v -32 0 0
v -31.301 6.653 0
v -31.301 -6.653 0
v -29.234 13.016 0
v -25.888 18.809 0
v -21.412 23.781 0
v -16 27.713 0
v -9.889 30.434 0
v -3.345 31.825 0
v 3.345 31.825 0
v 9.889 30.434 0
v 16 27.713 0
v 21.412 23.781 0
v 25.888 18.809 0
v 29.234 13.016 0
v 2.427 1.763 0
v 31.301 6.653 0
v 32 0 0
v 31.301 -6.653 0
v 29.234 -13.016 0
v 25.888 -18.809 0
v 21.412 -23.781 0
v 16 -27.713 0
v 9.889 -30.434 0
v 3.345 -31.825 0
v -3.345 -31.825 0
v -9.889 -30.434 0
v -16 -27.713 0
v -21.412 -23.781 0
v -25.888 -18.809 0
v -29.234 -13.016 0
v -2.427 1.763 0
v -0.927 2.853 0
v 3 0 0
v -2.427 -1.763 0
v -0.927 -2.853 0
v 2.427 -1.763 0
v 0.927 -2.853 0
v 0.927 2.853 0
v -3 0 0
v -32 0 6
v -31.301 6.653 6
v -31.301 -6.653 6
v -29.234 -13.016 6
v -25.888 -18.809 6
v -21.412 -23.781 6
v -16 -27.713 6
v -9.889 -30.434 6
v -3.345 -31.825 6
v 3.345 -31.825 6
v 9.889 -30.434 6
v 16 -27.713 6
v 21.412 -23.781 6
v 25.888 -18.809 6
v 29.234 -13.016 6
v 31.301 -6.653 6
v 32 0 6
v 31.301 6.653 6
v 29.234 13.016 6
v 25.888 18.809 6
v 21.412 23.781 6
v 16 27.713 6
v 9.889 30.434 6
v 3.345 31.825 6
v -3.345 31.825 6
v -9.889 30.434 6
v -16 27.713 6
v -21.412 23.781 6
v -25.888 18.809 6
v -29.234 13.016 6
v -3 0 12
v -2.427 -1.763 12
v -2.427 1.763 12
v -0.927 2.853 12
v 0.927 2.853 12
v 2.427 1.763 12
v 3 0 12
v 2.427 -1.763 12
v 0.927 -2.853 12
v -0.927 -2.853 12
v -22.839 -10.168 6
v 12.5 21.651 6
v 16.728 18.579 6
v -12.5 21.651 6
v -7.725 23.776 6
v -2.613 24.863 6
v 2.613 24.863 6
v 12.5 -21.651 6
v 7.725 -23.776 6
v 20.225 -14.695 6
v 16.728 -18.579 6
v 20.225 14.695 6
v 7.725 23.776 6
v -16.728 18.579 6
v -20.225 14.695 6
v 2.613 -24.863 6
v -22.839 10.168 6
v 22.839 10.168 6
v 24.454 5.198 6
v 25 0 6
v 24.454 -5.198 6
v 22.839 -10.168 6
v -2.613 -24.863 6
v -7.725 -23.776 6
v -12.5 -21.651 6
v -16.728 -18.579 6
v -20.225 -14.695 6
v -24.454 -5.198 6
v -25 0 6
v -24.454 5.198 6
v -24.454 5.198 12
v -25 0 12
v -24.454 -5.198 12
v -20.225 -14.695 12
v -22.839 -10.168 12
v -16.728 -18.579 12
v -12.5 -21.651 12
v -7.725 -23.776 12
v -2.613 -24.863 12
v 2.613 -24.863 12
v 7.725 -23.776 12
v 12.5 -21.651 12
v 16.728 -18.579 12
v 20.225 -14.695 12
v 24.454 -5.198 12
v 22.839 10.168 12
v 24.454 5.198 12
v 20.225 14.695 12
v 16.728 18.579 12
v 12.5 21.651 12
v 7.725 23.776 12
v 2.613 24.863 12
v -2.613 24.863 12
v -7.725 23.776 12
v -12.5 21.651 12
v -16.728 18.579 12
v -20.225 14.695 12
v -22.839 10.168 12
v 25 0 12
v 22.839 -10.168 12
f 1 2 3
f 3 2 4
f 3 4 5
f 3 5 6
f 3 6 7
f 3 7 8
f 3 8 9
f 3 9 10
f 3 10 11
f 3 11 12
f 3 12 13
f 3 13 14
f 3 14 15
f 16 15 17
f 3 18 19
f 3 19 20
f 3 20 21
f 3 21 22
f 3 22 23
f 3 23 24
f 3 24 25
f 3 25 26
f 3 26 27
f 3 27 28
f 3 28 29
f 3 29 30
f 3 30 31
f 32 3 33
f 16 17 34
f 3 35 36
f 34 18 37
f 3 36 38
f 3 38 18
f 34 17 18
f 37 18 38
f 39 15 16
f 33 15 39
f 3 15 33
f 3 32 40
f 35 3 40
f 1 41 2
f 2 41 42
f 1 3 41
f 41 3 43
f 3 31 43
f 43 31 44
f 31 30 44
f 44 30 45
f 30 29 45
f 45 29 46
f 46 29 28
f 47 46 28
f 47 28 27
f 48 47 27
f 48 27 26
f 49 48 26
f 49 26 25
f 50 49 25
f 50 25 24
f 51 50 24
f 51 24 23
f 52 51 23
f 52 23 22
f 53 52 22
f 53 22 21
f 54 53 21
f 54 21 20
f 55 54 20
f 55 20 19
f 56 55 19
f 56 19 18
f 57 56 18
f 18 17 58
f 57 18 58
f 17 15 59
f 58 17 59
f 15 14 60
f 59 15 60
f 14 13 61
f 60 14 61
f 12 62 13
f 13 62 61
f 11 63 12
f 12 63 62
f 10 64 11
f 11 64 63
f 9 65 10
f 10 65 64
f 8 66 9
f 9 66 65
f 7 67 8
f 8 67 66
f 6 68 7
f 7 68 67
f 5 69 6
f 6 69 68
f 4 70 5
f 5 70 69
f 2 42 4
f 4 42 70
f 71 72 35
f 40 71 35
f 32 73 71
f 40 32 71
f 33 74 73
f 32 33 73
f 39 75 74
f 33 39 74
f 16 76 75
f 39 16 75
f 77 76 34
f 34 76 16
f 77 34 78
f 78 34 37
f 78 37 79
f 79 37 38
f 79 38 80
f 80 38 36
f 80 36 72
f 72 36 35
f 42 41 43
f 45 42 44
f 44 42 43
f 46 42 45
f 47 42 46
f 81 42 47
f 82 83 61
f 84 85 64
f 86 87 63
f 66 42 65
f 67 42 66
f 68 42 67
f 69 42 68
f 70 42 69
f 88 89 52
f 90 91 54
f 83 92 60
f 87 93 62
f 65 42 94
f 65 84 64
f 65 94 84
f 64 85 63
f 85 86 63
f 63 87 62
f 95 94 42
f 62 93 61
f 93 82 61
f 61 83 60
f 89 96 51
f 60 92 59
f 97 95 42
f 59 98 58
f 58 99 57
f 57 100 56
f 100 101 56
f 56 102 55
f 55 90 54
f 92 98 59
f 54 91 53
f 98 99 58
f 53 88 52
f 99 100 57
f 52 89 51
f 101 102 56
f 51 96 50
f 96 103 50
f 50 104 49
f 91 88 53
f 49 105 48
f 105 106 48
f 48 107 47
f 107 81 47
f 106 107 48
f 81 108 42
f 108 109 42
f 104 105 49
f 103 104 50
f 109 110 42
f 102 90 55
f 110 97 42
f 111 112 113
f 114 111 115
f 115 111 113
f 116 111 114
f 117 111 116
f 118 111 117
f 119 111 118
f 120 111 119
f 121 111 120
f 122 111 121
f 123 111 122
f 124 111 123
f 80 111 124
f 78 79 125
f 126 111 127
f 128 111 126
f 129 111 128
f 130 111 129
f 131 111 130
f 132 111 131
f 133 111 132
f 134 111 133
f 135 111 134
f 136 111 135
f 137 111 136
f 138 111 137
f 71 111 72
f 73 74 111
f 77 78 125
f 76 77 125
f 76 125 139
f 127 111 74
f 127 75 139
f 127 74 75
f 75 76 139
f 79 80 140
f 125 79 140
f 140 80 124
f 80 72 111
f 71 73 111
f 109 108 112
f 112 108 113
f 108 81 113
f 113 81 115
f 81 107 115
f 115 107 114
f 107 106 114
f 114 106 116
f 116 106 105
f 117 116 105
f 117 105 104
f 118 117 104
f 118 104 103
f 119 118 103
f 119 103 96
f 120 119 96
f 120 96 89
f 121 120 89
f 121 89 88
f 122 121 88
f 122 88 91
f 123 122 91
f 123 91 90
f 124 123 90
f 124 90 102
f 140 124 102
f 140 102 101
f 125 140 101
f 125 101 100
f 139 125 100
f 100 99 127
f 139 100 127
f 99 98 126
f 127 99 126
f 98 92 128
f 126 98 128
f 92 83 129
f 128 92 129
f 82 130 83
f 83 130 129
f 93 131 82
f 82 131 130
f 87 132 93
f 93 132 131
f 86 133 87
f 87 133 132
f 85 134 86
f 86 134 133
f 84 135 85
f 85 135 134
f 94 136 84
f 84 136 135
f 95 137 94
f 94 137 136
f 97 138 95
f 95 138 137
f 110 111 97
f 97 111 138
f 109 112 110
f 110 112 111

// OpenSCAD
inner_radius = 25;

difference() {
	union() {
		cylinder(6, r=inner_radius + 7);
		translate([0,0,6]) {
			cylinder(6, r=inner_radius);
		}
	}
	cylinder(12, r=3);
}
